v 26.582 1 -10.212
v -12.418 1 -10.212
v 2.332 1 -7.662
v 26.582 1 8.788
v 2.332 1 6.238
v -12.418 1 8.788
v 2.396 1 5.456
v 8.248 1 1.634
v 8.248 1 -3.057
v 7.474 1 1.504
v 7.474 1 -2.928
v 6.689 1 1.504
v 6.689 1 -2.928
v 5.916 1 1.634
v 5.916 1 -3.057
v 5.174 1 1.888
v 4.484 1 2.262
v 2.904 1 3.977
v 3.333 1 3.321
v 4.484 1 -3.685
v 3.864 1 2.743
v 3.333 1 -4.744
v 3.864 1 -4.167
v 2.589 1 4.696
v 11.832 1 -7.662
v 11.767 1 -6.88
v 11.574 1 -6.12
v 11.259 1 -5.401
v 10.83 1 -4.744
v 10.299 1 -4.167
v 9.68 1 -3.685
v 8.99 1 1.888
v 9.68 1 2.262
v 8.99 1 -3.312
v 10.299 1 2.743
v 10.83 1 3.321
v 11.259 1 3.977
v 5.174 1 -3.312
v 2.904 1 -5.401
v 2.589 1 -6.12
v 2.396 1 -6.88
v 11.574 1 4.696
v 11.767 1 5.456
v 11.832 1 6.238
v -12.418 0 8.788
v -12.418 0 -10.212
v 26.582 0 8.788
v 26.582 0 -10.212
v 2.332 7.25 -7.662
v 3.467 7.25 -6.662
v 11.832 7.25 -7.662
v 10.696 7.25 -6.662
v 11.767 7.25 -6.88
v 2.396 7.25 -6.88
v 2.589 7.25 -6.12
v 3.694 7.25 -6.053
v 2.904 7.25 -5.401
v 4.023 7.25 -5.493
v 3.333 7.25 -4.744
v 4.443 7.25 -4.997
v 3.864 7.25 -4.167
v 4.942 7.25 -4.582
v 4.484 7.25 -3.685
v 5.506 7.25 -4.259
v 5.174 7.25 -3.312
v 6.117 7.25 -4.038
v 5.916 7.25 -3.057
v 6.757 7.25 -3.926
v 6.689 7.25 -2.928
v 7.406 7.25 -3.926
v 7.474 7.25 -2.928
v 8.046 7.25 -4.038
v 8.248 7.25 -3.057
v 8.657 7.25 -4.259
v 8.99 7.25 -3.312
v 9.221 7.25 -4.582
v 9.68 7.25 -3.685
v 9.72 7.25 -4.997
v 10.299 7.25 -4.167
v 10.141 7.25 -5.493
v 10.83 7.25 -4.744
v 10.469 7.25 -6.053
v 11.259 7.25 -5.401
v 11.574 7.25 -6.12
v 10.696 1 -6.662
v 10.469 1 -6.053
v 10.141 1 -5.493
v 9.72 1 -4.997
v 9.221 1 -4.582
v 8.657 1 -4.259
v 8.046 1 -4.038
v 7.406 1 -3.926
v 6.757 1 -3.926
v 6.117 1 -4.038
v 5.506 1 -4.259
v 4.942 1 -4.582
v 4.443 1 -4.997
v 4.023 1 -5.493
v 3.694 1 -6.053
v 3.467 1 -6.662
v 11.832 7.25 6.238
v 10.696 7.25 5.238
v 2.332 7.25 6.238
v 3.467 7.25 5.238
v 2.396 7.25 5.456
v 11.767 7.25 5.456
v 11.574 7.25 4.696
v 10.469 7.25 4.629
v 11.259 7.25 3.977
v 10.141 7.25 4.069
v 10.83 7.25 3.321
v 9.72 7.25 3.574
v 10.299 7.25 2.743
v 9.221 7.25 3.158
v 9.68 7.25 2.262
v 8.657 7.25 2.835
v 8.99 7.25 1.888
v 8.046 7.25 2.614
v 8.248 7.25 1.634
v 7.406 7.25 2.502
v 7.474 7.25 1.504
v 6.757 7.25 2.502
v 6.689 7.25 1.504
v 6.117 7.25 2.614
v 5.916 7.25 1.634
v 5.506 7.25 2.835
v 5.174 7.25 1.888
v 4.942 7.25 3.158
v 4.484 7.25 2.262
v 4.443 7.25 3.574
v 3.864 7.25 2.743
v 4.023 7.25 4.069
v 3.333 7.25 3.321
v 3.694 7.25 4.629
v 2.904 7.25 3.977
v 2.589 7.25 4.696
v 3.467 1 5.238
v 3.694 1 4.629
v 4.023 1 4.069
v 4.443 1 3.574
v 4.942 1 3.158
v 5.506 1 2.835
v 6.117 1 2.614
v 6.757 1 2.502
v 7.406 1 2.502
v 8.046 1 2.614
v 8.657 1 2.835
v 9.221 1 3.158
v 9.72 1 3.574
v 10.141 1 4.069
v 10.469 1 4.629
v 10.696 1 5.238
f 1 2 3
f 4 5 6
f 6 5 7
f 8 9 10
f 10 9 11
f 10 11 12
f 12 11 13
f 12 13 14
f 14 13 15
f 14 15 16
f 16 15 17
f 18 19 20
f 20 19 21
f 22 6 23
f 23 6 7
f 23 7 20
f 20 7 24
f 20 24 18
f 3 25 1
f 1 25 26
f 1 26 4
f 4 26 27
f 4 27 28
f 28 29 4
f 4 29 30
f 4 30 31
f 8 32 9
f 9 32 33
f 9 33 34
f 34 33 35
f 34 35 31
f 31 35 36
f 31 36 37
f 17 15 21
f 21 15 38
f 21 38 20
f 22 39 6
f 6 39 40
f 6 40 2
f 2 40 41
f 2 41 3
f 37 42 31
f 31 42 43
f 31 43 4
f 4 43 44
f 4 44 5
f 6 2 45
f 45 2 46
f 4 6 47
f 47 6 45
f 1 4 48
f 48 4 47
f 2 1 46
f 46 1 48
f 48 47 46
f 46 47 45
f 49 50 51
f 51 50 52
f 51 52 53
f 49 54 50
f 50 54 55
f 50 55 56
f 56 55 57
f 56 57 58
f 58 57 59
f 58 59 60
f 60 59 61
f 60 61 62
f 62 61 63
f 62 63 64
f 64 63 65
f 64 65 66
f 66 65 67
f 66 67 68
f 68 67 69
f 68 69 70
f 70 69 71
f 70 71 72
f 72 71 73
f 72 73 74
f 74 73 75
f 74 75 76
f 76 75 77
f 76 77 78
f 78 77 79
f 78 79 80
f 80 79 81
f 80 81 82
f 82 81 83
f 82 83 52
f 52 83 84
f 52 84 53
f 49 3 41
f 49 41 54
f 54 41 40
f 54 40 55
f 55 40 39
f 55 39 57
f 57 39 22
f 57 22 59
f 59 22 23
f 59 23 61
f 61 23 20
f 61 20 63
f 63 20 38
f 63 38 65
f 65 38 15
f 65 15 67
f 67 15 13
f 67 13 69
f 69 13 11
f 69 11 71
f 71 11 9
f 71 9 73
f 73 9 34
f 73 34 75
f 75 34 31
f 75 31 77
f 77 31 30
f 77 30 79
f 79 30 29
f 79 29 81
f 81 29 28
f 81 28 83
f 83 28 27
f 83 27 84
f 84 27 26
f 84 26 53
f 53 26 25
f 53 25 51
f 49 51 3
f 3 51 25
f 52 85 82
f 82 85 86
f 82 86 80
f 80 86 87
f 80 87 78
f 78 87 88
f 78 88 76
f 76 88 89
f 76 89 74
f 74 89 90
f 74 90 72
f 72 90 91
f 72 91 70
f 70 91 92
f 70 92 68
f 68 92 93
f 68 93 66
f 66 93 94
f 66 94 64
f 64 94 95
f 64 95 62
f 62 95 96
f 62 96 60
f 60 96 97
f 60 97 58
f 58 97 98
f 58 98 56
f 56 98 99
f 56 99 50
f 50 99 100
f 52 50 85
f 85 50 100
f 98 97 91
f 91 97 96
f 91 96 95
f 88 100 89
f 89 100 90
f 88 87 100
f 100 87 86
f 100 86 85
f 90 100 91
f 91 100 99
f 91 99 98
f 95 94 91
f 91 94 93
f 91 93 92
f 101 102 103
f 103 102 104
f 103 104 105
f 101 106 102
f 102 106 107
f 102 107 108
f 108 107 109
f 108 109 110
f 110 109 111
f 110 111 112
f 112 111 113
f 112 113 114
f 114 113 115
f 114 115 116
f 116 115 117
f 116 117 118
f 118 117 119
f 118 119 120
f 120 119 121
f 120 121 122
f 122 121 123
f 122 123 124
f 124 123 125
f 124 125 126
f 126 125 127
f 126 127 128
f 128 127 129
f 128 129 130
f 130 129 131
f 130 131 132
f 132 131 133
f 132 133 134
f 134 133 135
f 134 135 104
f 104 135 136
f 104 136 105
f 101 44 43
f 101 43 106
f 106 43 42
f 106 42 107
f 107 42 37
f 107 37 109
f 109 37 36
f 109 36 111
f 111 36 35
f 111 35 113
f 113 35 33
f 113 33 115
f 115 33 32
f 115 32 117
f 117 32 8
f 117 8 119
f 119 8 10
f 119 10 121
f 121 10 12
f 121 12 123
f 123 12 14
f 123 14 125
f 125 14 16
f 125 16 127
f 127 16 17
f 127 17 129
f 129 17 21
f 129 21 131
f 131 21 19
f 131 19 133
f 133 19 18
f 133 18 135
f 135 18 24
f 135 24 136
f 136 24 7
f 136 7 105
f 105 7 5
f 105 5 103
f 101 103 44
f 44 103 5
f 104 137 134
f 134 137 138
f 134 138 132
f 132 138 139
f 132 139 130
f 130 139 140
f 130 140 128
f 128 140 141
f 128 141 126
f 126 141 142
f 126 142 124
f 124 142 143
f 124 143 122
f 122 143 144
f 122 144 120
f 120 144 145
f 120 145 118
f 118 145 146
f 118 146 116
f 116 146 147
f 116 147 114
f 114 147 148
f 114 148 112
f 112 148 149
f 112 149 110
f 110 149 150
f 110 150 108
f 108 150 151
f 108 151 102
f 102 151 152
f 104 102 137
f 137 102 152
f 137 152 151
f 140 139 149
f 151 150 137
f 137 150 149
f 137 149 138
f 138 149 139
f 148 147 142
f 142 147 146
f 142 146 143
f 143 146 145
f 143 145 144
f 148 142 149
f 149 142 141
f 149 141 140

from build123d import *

# Parameters (mm, degrees)
SKETCH1_W           = 39
SKETCH1_H           = 19
BOSS_EXTRUDE1_DEPTH = 1
BOSS_EXTRUDE2_DEPTH = 6.25


with BuildPart() as part:
    # Sketch1 → Boss-Extrude1 (new body)
    with BuildSketch(Plane(origin=(0, 0, 0), x_dir=(1, 0, 0), z_dir=(0, 1, 0))):
        with Locations((7.081578947, 0.711842105)):
            Rectangle(SKETCH1_W, SKETCH1_H)
    extrude(amount=BOSS_EXTRUDE1_DEPTH)

    # Sketch2 → Boss-Extrude2 (add)
    # profile 1 of 2: a face of its own
    with BuildSketch(Plane(origin=(0, 1, 0), x_dir=(1, 0, 0), z_dir=(0, 1, 0))):
        with BuildLine():
            Line((2.331578947, 7.661842105), (11.831578947, 7.661842105))
            ThreePointArc((11.831578947, 7.661842105), (7.081578947, 2.911842105), (2.331578947, 7.661842105))
        make_face()
        with BuildLine():
            Line((3.467370874, 6.661842105), (10.695787021, 6.661842105))
            ThreePointArc((10.695787021, 6.661842105), (7.081578947, 3.911842105), (3.467370874, 6.661842105))
        make_face(mode=Mode.SUBTRACT)
    # profile 2 of 2: a face of its own
    with BuildSketch(Plane(origin=(0, 1, 0), x_dir=(1, 0, 0), z_dir=(0, 1, 0))):
        with BuildLine():
            Line((2.331578947, -6.238157895), (11.831578947, -6.238157895))
            ThreePointArc((11.831578947, -6.238157895), (7.081578947, -1.488157895), (2.331578947, -6.238157895))
        make_face()
        with BuildLine():
            Line((3.467370874, -5.238157895), (10.695787021, -5.238157895))
            ThreePointArc((10.695787021, -5.238157895), (7.081578947, -2.488157895), (3.467370874, -5.238157895))
        make_face(mode=Mode.SUBTRACT)
    extrude(amount=BOSS_EXTRUDE2_DEPTH)


solid = part.part
